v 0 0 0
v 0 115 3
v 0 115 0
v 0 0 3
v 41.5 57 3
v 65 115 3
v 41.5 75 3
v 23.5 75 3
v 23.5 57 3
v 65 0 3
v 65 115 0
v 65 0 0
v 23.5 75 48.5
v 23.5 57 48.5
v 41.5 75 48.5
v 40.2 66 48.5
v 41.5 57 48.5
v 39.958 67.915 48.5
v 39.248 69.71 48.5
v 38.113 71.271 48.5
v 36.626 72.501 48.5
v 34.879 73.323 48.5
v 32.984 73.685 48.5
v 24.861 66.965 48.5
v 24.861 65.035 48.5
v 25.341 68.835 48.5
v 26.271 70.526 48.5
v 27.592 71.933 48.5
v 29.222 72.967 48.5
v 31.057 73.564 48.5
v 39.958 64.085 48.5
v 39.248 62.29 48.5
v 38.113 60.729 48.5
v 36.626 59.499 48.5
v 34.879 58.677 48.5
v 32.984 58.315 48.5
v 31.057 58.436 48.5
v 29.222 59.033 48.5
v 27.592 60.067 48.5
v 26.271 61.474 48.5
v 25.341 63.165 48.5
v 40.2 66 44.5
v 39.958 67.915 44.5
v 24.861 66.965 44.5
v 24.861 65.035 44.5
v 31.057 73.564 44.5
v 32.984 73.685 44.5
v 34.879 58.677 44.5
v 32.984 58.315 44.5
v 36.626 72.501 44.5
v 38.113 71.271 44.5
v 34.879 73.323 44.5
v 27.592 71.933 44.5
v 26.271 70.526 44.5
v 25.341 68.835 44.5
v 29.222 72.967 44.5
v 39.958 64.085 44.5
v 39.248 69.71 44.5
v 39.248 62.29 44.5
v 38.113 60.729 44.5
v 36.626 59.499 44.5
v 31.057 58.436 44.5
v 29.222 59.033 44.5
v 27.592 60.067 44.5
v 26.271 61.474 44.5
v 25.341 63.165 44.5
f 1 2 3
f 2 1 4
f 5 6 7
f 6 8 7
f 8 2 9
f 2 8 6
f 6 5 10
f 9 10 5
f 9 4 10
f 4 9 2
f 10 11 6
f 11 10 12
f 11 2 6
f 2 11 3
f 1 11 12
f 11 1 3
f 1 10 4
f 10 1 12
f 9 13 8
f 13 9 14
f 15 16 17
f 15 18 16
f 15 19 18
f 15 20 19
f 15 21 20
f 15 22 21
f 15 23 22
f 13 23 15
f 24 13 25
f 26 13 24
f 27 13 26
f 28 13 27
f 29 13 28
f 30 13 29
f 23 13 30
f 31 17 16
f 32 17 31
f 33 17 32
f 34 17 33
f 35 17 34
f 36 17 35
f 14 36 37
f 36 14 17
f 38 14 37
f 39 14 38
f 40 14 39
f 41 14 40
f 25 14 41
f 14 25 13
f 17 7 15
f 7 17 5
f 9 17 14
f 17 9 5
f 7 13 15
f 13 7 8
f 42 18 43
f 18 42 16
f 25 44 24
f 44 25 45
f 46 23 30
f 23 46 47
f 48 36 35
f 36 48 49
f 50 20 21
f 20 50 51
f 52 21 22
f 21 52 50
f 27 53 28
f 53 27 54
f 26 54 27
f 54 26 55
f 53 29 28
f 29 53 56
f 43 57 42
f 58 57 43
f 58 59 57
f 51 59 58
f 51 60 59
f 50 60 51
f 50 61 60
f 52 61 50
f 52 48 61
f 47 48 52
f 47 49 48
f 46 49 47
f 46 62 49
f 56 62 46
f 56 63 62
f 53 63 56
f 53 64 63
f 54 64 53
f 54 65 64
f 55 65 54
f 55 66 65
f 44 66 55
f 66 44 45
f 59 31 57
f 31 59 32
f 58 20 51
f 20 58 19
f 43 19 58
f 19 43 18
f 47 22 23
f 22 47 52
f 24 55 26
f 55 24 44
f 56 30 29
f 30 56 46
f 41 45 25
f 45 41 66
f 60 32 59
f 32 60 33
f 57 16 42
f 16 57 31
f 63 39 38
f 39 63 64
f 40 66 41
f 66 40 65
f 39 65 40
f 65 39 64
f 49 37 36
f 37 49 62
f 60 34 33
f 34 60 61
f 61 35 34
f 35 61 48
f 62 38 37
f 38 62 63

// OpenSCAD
length = 65;
width = 115;
height = 3;

//Based on magnet size:
pillarSideLength = 18;
pillarSideOffset = .5;

magnetBaseInnerDiameter = 15.4;
magnetHeight = 4.0;


magnetOffset = 52.5;


spaceBetweenCircles = 2;
wallThickness = spaceBetweenCircles;
pillarHeight = 15 * 3 + .5 + height;

difference() {
union(){
    cube([length, width, height]);


//----------------------------------


            
//---------------------------------------------------------------------
    
          

//----------------------------------------
   
    translate([length/2 - ((pillarSideLength)/2), magnetOffset + wallThickness * 2 + pillarSideOffset, 0])
        cube([pillarSideLength, pillarSideLength, pillarHeight]);
        

}
    translate([length/2,  magnetOffset + wallThickness * 2 + magnetBaseInnerDiameter/2 + (pillarSideLength -magnetBaseInnerDiameter )/2 + pillarSideOffset, pillarHeight - magnetHeight])
        cylinder(magnetHeight, d=magnetBaseInnerDiameter);

}
